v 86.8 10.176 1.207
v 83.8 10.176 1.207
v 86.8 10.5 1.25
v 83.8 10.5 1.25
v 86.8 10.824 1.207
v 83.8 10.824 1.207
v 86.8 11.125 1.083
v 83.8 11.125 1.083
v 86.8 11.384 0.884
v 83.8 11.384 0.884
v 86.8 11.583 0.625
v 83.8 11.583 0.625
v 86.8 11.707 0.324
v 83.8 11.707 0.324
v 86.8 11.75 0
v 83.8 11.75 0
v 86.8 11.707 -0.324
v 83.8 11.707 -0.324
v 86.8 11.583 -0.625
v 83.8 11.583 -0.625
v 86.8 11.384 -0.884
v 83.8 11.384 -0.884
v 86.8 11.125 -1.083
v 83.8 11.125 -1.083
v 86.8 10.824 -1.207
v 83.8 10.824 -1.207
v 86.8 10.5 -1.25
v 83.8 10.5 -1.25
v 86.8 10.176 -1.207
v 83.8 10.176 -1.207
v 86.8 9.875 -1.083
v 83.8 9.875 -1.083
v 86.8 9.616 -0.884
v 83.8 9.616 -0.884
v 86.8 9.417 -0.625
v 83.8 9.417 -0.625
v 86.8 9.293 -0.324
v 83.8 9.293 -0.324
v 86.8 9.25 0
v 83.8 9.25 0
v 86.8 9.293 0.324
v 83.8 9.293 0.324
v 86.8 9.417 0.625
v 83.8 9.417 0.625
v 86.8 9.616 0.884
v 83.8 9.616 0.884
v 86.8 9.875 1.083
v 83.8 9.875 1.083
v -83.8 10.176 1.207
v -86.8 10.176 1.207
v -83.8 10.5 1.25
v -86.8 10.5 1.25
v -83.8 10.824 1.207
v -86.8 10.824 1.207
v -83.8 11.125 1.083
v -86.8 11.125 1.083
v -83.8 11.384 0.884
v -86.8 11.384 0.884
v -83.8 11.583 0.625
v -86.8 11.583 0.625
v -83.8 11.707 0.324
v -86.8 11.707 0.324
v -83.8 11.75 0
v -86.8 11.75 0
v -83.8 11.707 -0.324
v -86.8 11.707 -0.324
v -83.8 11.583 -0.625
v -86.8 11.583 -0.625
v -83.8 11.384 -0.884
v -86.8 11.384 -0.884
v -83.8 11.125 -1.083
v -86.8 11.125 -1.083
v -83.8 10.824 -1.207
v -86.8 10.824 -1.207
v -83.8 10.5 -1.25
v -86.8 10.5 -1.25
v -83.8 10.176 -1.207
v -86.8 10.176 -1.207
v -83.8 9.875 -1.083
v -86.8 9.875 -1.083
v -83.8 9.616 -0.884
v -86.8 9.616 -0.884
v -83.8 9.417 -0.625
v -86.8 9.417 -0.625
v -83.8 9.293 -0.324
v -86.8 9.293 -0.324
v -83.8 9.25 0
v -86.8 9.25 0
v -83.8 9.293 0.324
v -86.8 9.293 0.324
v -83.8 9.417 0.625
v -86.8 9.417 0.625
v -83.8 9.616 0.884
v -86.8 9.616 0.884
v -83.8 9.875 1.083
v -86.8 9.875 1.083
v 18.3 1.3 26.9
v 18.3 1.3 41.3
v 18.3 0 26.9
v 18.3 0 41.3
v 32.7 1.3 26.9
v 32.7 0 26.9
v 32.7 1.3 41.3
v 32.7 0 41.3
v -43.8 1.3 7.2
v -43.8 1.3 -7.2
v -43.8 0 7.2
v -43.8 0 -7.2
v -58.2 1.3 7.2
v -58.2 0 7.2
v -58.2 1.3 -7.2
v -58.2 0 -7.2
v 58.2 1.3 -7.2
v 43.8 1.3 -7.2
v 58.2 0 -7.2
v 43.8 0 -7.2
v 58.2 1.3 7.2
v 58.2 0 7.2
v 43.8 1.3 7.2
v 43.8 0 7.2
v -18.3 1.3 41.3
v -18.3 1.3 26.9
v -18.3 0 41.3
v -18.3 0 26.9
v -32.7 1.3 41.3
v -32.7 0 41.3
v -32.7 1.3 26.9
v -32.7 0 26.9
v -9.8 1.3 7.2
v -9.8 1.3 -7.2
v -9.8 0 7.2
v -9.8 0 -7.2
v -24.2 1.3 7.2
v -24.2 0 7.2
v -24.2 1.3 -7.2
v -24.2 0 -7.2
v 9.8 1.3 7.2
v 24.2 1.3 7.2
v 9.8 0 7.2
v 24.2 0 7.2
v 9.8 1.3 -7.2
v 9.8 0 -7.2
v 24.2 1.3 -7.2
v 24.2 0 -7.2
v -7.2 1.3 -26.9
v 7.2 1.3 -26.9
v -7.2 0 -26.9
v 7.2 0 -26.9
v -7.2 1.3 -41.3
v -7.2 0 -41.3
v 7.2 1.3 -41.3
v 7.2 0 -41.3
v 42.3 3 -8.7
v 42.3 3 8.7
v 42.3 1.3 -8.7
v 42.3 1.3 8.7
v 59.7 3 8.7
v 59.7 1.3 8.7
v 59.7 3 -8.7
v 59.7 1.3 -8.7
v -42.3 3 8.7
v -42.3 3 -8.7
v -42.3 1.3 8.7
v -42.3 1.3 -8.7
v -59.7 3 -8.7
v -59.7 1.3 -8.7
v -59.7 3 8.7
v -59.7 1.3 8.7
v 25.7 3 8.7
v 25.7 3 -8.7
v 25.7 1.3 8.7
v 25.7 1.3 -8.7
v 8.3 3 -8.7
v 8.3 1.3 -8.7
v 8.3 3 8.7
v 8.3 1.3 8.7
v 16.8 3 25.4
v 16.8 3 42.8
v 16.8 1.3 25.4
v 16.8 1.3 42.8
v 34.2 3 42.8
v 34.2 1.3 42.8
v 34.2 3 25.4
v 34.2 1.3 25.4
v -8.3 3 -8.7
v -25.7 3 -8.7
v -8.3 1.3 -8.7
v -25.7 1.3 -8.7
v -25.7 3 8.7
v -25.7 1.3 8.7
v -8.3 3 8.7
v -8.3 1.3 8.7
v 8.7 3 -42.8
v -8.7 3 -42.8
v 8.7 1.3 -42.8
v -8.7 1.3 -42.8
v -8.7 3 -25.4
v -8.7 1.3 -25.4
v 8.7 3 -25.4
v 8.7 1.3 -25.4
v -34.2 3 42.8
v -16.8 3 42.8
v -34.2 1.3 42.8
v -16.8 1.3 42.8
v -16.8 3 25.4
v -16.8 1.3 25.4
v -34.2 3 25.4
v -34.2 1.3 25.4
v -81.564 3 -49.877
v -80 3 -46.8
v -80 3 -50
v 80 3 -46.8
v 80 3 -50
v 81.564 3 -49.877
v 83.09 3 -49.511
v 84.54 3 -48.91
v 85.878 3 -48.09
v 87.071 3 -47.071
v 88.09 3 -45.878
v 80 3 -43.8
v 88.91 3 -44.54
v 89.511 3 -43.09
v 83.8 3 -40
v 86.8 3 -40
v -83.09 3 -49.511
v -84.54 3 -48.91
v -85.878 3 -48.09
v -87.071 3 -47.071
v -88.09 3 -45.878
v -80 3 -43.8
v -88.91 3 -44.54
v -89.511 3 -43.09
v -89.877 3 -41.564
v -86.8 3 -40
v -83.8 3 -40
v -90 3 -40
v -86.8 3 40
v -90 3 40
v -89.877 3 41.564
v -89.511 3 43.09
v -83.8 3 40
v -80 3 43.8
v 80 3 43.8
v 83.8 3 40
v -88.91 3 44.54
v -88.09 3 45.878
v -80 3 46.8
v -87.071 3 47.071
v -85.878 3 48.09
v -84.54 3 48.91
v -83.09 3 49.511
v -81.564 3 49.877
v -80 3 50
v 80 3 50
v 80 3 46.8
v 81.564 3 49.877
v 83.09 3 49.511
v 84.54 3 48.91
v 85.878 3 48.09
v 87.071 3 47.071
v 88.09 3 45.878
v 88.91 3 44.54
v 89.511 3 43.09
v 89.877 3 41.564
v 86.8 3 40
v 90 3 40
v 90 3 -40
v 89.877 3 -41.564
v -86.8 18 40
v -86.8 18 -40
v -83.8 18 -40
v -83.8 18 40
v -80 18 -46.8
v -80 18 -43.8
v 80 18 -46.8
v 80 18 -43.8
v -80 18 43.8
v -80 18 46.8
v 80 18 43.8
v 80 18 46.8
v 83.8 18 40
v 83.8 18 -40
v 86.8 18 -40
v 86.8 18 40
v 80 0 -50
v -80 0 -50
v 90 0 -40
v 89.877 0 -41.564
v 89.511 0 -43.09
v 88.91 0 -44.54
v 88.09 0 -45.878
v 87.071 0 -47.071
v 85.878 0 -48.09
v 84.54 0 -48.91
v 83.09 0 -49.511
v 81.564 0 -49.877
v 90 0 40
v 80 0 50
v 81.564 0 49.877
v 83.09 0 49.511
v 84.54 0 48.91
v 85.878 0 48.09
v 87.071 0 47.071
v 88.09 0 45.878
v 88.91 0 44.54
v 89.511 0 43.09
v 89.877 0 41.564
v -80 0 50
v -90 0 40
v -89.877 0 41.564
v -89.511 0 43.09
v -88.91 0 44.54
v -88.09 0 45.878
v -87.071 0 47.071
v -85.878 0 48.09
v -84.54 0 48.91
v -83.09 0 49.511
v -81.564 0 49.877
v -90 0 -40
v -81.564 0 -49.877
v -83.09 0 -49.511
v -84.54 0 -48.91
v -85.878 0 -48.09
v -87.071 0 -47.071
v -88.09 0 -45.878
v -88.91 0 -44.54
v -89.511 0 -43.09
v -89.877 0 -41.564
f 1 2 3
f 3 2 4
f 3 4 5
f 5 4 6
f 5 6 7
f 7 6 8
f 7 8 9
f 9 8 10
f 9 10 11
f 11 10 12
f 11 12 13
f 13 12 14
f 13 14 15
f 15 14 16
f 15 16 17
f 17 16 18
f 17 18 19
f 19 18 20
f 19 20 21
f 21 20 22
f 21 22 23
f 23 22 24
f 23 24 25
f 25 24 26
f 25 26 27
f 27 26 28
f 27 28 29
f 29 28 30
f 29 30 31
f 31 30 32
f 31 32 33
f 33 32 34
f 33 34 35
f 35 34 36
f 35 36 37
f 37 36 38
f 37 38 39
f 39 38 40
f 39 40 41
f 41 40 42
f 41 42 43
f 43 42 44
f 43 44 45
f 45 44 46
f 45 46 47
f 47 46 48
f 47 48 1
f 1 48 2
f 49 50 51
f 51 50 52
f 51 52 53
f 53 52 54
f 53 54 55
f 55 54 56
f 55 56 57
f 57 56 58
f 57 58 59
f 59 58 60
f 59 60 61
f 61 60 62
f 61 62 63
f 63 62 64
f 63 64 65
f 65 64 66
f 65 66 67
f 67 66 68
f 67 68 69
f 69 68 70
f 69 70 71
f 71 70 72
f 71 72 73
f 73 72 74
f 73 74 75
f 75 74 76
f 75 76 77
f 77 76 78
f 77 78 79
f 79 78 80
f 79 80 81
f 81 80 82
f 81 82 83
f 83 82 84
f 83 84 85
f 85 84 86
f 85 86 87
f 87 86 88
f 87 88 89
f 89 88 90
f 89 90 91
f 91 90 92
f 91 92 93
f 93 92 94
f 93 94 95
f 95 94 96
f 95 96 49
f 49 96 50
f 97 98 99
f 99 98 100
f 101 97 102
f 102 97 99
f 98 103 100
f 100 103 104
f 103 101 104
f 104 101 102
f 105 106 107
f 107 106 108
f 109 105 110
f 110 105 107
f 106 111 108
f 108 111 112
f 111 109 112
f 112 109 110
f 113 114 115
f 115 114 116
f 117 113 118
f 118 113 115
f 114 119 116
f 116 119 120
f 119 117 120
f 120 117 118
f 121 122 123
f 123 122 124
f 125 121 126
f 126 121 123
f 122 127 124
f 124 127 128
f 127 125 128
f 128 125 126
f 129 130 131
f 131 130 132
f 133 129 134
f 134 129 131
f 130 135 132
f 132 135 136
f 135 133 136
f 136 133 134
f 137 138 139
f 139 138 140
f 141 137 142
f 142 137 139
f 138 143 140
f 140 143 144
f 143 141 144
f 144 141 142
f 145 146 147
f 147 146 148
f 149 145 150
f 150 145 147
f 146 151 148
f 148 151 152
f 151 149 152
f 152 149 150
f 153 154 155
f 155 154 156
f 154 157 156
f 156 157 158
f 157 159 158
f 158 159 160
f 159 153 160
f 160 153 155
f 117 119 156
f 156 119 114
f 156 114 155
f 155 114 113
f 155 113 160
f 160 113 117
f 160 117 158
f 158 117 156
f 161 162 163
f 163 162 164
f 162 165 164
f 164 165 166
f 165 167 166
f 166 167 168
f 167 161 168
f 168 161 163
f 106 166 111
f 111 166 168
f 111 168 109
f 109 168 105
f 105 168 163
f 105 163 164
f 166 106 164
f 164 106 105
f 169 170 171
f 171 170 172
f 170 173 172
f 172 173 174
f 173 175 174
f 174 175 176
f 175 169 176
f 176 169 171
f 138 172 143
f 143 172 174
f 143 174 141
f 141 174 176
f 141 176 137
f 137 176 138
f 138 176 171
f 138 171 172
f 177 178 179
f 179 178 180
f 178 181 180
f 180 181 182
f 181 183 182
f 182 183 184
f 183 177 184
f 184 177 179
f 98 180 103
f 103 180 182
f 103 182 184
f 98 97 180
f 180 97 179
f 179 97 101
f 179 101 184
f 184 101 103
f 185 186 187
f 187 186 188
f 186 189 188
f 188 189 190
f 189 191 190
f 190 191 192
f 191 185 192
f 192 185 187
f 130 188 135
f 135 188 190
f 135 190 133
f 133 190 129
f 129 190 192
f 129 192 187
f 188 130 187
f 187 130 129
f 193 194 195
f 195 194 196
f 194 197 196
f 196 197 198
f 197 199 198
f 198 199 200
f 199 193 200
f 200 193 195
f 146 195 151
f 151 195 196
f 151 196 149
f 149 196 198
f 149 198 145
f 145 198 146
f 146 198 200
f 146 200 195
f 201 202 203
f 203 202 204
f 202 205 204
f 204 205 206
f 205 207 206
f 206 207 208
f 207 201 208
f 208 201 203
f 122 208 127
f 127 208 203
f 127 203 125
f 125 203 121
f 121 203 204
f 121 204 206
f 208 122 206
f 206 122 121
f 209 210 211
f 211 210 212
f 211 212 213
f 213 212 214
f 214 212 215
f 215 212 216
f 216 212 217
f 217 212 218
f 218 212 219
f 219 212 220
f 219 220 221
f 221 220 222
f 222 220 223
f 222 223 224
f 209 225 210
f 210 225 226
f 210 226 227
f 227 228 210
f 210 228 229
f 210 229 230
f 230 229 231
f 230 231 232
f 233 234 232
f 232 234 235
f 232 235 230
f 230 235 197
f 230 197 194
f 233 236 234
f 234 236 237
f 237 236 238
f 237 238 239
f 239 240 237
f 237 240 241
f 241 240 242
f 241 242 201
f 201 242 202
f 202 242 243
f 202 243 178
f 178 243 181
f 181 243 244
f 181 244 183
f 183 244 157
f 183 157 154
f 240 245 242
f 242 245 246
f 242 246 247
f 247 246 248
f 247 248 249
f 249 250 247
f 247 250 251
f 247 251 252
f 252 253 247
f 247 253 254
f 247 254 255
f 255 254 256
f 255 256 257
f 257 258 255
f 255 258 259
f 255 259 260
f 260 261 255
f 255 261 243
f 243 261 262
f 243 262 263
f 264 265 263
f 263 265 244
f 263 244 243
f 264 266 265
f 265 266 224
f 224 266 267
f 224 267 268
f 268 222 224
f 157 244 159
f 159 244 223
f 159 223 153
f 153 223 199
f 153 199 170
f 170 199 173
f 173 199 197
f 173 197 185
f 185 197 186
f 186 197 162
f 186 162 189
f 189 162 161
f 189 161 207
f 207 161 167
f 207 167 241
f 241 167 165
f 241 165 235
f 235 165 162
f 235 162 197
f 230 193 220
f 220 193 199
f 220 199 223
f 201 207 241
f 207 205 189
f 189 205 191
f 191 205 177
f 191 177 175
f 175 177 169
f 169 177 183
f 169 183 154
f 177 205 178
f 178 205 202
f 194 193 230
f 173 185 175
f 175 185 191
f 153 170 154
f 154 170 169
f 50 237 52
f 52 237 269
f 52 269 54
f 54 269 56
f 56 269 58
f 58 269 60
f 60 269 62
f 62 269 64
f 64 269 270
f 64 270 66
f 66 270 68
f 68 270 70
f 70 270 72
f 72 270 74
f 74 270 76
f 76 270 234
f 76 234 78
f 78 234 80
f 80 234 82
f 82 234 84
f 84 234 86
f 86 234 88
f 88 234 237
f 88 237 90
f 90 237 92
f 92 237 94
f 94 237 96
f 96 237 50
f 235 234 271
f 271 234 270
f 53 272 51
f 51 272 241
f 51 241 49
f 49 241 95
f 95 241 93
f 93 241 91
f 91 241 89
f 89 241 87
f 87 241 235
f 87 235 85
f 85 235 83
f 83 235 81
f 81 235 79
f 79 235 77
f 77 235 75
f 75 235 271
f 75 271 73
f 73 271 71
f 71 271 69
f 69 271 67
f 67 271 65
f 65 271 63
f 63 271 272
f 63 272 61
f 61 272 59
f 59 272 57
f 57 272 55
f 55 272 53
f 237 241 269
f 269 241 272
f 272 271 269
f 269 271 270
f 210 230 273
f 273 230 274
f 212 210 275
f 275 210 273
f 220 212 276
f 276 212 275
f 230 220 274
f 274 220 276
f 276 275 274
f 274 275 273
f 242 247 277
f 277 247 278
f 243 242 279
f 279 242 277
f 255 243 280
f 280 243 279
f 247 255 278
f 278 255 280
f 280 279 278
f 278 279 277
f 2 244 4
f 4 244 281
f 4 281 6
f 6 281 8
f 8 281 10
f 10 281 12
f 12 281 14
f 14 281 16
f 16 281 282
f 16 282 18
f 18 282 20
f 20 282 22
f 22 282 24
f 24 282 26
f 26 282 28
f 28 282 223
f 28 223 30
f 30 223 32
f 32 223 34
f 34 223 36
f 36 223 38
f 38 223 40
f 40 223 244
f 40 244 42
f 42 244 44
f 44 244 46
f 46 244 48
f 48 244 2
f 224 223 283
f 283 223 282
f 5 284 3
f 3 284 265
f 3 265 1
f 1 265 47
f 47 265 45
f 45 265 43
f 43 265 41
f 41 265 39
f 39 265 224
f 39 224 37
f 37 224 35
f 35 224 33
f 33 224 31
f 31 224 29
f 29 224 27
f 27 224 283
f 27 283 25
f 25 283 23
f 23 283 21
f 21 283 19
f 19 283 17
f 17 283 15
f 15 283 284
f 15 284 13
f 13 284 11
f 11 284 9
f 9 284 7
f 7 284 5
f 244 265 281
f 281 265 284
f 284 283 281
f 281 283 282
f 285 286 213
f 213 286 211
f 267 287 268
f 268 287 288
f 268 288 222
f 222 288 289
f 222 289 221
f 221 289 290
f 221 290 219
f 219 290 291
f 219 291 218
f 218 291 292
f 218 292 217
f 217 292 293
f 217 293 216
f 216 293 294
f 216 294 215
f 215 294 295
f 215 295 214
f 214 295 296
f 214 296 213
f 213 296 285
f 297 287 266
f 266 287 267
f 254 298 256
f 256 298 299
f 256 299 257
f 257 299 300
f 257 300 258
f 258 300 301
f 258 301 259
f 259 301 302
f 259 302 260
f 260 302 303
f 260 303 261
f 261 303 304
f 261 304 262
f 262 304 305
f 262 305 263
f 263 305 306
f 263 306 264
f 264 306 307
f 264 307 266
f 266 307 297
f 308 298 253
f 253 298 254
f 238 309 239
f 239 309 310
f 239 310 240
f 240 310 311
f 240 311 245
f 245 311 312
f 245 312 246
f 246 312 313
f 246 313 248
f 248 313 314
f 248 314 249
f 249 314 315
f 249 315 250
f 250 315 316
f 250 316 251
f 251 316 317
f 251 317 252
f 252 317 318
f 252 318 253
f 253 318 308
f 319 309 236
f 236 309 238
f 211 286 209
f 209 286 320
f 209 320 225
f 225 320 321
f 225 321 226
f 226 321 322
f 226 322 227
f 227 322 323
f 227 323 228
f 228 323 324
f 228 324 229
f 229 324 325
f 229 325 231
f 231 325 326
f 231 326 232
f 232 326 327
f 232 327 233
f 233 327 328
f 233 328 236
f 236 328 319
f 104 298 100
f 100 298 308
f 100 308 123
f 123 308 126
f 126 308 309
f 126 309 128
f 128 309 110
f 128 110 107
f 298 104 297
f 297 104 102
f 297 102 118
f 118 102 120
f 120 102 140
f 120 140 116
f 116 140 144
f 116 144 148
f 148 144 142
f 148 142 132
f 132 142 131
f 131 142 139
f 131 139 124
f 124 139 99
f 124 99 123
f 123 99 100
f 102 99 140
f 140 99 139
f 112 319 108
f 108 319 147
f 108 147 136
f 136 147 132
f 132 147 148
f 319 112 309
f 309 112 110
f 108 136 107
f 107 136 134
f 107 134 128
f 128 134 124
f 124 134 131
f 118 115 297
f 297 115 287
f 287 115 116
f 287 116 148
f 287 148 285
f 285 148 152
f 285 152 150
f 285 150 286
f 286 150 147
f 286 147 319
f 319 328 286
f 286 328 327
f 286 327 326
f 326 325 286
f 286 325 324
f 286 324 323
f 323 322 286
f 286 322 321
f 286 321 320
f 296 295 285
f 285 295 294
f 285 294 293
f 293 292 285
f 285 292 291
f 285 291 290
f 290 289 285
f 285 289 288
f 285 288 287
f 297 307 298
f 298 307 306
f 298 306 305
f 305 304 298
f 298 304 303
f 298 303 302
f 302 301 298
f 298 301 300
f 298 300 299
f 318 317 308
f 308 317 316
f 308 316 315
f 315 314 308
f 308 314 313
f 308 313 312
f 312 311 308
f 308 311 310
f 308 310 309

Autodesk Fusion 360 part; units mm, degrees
sketch "Top" plane through (0, 0, 0) normal (0, 1, 0) x (1, 0, 0)
  line L0 (-80, 50) -> (80, 50)
  line L1 (90, 40) -> (90, -40)
  line L2 (80, -50) -> (-80, -50)
  line L3 (-90, -40) -> (-90, 40)
  line L4 (-90, 50) -> (90, -50) construction
  line L5 (90, 50) -> (-90, -50) construction
  arc A0 (-80, 50) -> (-90, 40) centre (-80, 40) ccw
  arc A1 (90, 40) -> (80, 50) centre (80, 40) ccw
  arc A2 (80, -50) -> (90, -40) centre (80, -40) ccw
  arc A3 (-90, -40) -> (-80, -50) centre (-80, -40) ccw
  dimension "d310" = 180
  dimension "d311" = 100
  dimension "d312" = 10
extrude "Extrude37" add sketch "Top" along normal blind 3
sketch "Tabs" plane through (0, 3, 0) normal (0, 1, 0) x (-1, 0, 0)
  arc A0 (80, -50) -> (90, -40) centre (80, -40) ccw
  line L0 (90, -40) -> (90, 40)
  arc A1 (90, 40) -> (80, 50) centre (80, 40) ccw
  line L1 (80, 50) -> (-80, 50)
  arc A2 (-80, 50) -> (-90, 40) centre (-80, 40) ccw
  line L2 (-90, 40) -> (-90, -40)
  arc A3 (-90, -40) -> (-80, -50) centre (-80, -40) ccw
  line L3 (-80, -50) -> (80, -50)
  line L4 (86.8, -40) -> (83.8, -40)
  line L5 (83.8, -40) -> (83.8, 40)
  line L6 (83.8, 40) -> (86.8, 40)
  line L7 (86.8, 40) -> (86.8, -40)
  line L8 (86.8, -40) -> (83.8, 40) construction
  line L9 (83.8, -40) -> (86.8, 40) construction
  line L10 (80, -46.8) -> (-80, -46.8)
  line L11 (-80, -46.8) -> (-80, -43.8)
  line L12 (-80, -43.8) -> (80, -43.8)
  line L13 (80, -43.8) -> (80, -46.8)
  line L14 (80, -46.8) -> (-80, -43.8) construction
  line L15 (-80, -46.8) -> (80, -43.8) construction
  line L16 (80, 43.8) -> (-80, 43.8)
  line L17 (-80, 43.8) -> (-80, 46.8)
  line L18 (-80, 46.8) -> (80, 46.8)
  line L19 (80, 46.8) -> (80, 43.8)
  line L20 (80, 43.8) -> (-80, 46.8) construction
  line L21 (-80, 43.8) -> (80, 46.8) construction
  line L22 (-83.8, -40) -> (-86.8, -40)
  line L23 (-86.8, -40) -> (-86.8, 40)
  line L24 (-86.8, 40) -> (-83.8, 40)
  line L25 (-83.8, 40) -> (-83.8, -40)
  line L26 (-83.8, -40) -> (-86.8, 40) construction
  line L27 (-86.8, -40) -> (-83.8, 40) construction
  point P0 (85.3, 0)
  point P1 (0, -45.3)
  point P2 (0, 45.3)
  point P3 (-85.3, 0)
  dimension "d315" = 3
  dimension "d316" = 10
  dimension "d317" = 10
  dimension "d318" = 3.2
  dimension "d319" = 3
  dimension "d320" = 10
  dimension "d321" = 10
  dimension "d322" = 3.2
  dimension "d324" = 3
  dimension "d325" = 10
  dimension "d326" = 10
  dimension "d327" = 3
  dimension "d329" = 10
  dimension "d330" = 10
  dimension "d333" = 3.2
  dimension "d334" = 3.2
extrude "Extrude38" add sketch "Tabs" along normal blind 15 contours L4 L5 L6 L7 | L10 L11 L12 L13 | L16 L17 L18 L19 | L22 L23 L24 L25
sketch "Switches" plane through (0, 3, 0) normal (0, 1, 0) x (-1, 0, 0)
  line L0 (86.8, 40) -> (86.8, -40)
  line L1 (86.8, -40) -> (83.8, -40)
  line L2 (83.8, -40) -> (83.8, 40)
  line L3 (83.8, 40) -> (86.8, 40)
  line L4 (80, -43.8) -> (80, -46.8)
  line L5 (80, -46.8) -> (-80, -46.8)
  line L6 (-80, -46.8) -> (-80, -43.8)
  line L7 (-80, -43.8) -> (80, -43.8)
  line L8 (80, 46.8) -> (80, 43.8)
  line L9 (80, 43.8) -> (-80, 43.8)
  line L10 (-80, 43.8) -> (-80, 46.8)
  line L11 (-80, 46.8) -> (80, 46.8)
  line L12 (-83.8, 40) -> (-83.8, -40)
  line L13 (-83.8, -40) -> (-86.8, -40)
  line L14 (-86.8, -40) -> (-86.8, 40)
  line L15 (-86.8, 40) -> (-83.8, 40)
  arc A0 (80, -50) -> (90, -40) centre (80, -40) ccw
  line L16 (90, -40) -> (90, 40)
  arc A1 (90, 40) -> (80, 50) centre (80, 40) ccw
  line L17 (80, 50) -> (-80, 50)
  arc A2 (-80, 50) -> (-90, 40) centre (-80, 40) ccw
  line L18 (-90, 40) -> (-90, -40)
  arc A3 (-90, -40) -> (-80, -50) centre (-80, -40) ccw
  line L19 (-80, -50) -> (80, -50)
  line L20 (-59.7, 8.7) -> (-42.3, 8.7)
  line L21 (-42.3, 8.7) -> (-42.3, -8.7)
  line L22 (-58.2, -7.2) -> (-58.2, 7.2)
  line L23 (-42.3, -8.7) -> (-59.7, -8.7)
  line L24 (-43.8, 7.2) -> (-43.8, -7.2)
  line L25 (-58.2, 7.2) -> (-43.8, 7.2)
  line L26 (-43.8, -7.2) -> (-58.2, 7.2) construction
  line L27 (-59.7, -8.7) -> (-59.7, 8.7)
  line L28 (-59.7, -8.7) -> (-42.3, 8.7) construction
  line L29 (-58.2, -7.2) -> (-43.8, 7.2) construction
  line L30 (-42.3, -8.7) -> (-59.7, 8.7) construction
  line L31 (-43.8, -7.2) -> (-58.2, -7.2)
  line L32 (24.2, 7.2) -> (24.2, -7.2)
  line L33 (8.3, -8.7) -> (8.3, 8.7)
  line L34 (25.7, -8.7) -> (8.3, 8.7) construction
  line L35 (9.8, 7.2) -> (24.2, 7.2)
  line L36 (24.2, -7.2) -> (9.8, 7.2) construction
  line L37 (8.3, -8.7) -> (25.7, 8.7) construction
  line L38 (9.8, -7.2) -> (24.2, 7.2) construction
  line L39 (24.2, -7.2) -> (9.8, -7.2)
  line L40 (25.7, 8.7) -> (25.7, -8.7)
  line L41 (9.8, -7.2) -> (9.8, 7.2)
  line L42 (25.7, -8.7) -> (8.3, -8.7)
  line L43 (8.3, 8.7) -> (25.7, 8.7)
  line L44 (-18.3, 26.9) -> (-32.7, 41.3) construction
  line L45 (-32.7, 41.3) -> (-18.3, 41.3)
  line L46 (-16.8, 25.4) -> (-34.2, 25.4)
  line L47 (-34.2, 42.8) -> (-16.8, 42.8)
  line L48 (-32.7, 26.9) -> (-32.7, 41.3)
  line L49 (-16.8, 42.8) -> (-16.8, 25.4)
  line L50 (-34.2, 25.4) -> (-34.2, 42.8)
  line L51 (-16.8, 25.4) -> (-34.2, 42.8) construction
  line L52 (-18.3, 26.9) -> (-32.7, 26.9)
  line L53 (-32.7, 26.9) -> (-18.3, 41.3) construction
  line L54 (-34.2, 25.4) -> (-16.8, 42.8) construction
  line L55 (-18.3, 41.3) -> (-18.3, 26.9)
  line L56 (16.8, 25.4) -> (34.2, 42.8) construction
  line L57 (18.3, 41.3) -> (32.7, 41.3)
  line L58 (34.2, 42.8) -> (34.2, 25.4)
  line L59 (18.3, 26.9) -> (32.7, 41.3) construction
  line L60 (32.7, 26.9) -> (18.3, 26.9)
  line L61 (16.8, 25.4) -> (16.8, 42.8)
  line L62 (32.7, 41.3) -> (32.7, 26.9)
  line L63 (16.8, 42.8) -> (34.2, 42.8)
  line L64 (34.2, 25.4) -> (16.8, 42.8) construction
  line L65 (34.2, 25.4) -> (16.8, 25.4)
  line L66 (18.3, 26.9) -> (18.3, 41.3)
  line L67 (32.7, 26.9) -> (18.3, 41.3) construction
  line L68 (-8.7, -42.8) -> (-8.7, -25.4)
  line L69 (-7.2, -41.3) -> (-7.2, -26.9)
  line L70 (7.2, -26.9) -> (7.2, -41.3)
  line L71 (-7.2, -41.3) -> (7.2, -26.9) construction
  line L72 (8.7, -25.4) -> (8.7, -42.8)
  line L73 (8.7, -42.8) -> (-8.7, -42.8)
  line L74 (7.2, -41.3) -> (-7.2, -26.9) construction
  line L75 (8.7, -42.8) -> (-8.7, -25.4) construction
  line L76 (-8.7, -42.8) -> (8.7, -25.4) construction
  line L77 (-8.7, -25.4) -> (8.7, -25.4)
  line L78 (7.2, -41.3) -> (-7.2, -41.3)
  line L79 (-7.2, -26.9) -> (7.2, -26.9)
  line L80 (42.3, -8.7) -> (42.3, 8.7)
  line L81 (43.8, 7.2) -> (58.2, 7.2)
  line L82 (42.3, 8.7) -> (59.7, 8.7)
  line L83 (59.7, -8.7) -> (42.3, -8.7)
  line L84 (58.2, -7.2) -> (43.8, -7.2)
  line L85 (58.2, 7.2) -> (58.2, -7.2)
  line L86 (42.3, -8.7) -> (59.7, 8.7) construction
  line L87 (59.7, -8.7) -> (42.3, 8.7) construction
  line L88 (43.8, -7.2) -> (43.8, 7.2)
  line L89 (43.8, -7.2) -> (58.2, 7.2) construction
  line L90 (58.2, -7.2) -> (43.8, 7.2) construction
  line L91 (59.7, 8.7) -> (59.7, -8.7)
  line L92 (-25.7, 8.7) -> (-8.3, 8.7)
  line L93 (-25.7, -8.7) -> (-8.3, 8.7) construction
  line L94 (-25.7, -8.7) -> (-25.7, 8.7)
  line L95 (-9.8, 7.2) -> (-9.8, -7.2)
  line L96 (-9.8, -7.2) -> (-24.2, -7.2)
  line L97 (-8.3, -8.7) -> (-25.7, 8.7) construction
  line L98 (-24.2, -7.2) -> (-9.8, 7.2) construction
  line L99 (-8.3, -8.7) -> (-25.7, -8.7)
  line L100 (-24.2, -7.2) -> (-24.2, 7.2)
  line L101 (-9.8, -7.2) -> (-24.2, 7.2) construction
  line L102 (-8.3, 8.7) -> (-8.3, -8.7)
  line L103 (-24.2, 7.2) -> (-9.8, 7.2)
  point P0 (-51, 0)
  point P1 (17, 0)
  point P2 (-25.5, 34.1)
  point P3 (25.5, 34.1)
  point P4 (0, -34.1)
  point P5 (51, 0)
  point P6 (-17, 0)
  dimension "d345" = 14.4
  dimension "d346" = 14.4
  dimension "d347" = 1.5
  dimension "d348" = 1.5
  dimension "d349" = 1.5
  dimension "d350" = 1.5
  dimension "d363" = 14.4
  dimension "d364" = 14.4
  dimension "d365" = 1.5
  dimension "d366" = 1.5
  dimension "d367" = 1.5
  dimension "d368" = 1.5
  dimension "d369" = 14.4
  dimension "d370" = 14.4
  dimension "d371" = 1.5
  dimension "d372" = 1.5
  dimension "d373" = 1.5
  dimension "d374" = 1.5
  dimension "d375" = 14.4
  dimension "d376" = 14.4
  dimension "d377" = 1.5
  dimension "d378" = 1.5
  dimension "d379" = 1.5
  dimension "d380" = 1.5
  dimension "d381" = 14.4
  dimension "d382" = 14.4
  dimension "d383" = 1.5
  dimension "d384" = 1.5
  dimension "d385" = 1.5
  dimension "d386" = 1.5
  dimension "d387" = 14.4
  dimension "d388" = 14.4
  dimension "d389" = 1.5
  dimension "d390" = 1.5
  dimension "d391" = 1.5
  dimension "d392" = 1.5
  dimension "d393" = 14.4
  dimension "d394" = 14.4
  dimension "d395" = 1.5
  dimension "d396" = 1.5
  dimension "d397" = 1.5
  dimension "d398" = 1.5
  dimension "d399" = 1
  dimension "d400" = 1
  dimension "d401" = 1
  dimension "d404" = 51
  dimension "d405" = 25.5
  dimension "d406" = 34
  dimension "d407" = 34
  dimension "d408" = 34
  dimension "d409" = 17
extrude "Extrude40" cut sketch "Switches" against normal blind 1.7 contours L20 L21 L23 L27 | L33 L40 L42 L43 | L46 L47 L49 L50 | L58 L61 L63 L65 | L68 L72 L73 L77 | L80 L82 L83 L91 | L92 L94 L99 L102
extrude "Extrude41" cut sketch "Switches" along normal blind 3 from surface at -3 contours L22 L24 L25 L31 | L32 L35 L39 L41 | L45 L48 L52 L55 | L57 L60 L62 L66 | L69 L70 L78 L79 | L81 L84 L85 L88 | L95 L96 L100 L103
sketch "Tab Holes" plane through (0, 0, 0) normal (1, 0, 0) x (0, 0, -1)
  circle A0 centre (0, 10.5) radius 1.25
  line L0 (-40, 3) -> (40, 3)
  dimension "d418" = 2.5
  dimension "d419" = 7.5
extrude "Extrude42" cut sketch "Tab Holes" along normal through all and the other way through all
equation "d405 = ( 51 / 2 ) * 1 mm"
equation "d409 = ( 34 / 2 ) * 1 mm"
equation "d413 = -( 3 mm - 1.3 mm )"
equation "d419 = ( 15 / 2 ) * 1 mm"
equation "d299 = 3 mm - 1.4 mm"
equation "d258 = 3 mm - 1.4 mm"
equation "d22 = ( 15 / 2 ) * 1 mm"
equation "d25 = ( 12 / 2 ) * 1 mm"
